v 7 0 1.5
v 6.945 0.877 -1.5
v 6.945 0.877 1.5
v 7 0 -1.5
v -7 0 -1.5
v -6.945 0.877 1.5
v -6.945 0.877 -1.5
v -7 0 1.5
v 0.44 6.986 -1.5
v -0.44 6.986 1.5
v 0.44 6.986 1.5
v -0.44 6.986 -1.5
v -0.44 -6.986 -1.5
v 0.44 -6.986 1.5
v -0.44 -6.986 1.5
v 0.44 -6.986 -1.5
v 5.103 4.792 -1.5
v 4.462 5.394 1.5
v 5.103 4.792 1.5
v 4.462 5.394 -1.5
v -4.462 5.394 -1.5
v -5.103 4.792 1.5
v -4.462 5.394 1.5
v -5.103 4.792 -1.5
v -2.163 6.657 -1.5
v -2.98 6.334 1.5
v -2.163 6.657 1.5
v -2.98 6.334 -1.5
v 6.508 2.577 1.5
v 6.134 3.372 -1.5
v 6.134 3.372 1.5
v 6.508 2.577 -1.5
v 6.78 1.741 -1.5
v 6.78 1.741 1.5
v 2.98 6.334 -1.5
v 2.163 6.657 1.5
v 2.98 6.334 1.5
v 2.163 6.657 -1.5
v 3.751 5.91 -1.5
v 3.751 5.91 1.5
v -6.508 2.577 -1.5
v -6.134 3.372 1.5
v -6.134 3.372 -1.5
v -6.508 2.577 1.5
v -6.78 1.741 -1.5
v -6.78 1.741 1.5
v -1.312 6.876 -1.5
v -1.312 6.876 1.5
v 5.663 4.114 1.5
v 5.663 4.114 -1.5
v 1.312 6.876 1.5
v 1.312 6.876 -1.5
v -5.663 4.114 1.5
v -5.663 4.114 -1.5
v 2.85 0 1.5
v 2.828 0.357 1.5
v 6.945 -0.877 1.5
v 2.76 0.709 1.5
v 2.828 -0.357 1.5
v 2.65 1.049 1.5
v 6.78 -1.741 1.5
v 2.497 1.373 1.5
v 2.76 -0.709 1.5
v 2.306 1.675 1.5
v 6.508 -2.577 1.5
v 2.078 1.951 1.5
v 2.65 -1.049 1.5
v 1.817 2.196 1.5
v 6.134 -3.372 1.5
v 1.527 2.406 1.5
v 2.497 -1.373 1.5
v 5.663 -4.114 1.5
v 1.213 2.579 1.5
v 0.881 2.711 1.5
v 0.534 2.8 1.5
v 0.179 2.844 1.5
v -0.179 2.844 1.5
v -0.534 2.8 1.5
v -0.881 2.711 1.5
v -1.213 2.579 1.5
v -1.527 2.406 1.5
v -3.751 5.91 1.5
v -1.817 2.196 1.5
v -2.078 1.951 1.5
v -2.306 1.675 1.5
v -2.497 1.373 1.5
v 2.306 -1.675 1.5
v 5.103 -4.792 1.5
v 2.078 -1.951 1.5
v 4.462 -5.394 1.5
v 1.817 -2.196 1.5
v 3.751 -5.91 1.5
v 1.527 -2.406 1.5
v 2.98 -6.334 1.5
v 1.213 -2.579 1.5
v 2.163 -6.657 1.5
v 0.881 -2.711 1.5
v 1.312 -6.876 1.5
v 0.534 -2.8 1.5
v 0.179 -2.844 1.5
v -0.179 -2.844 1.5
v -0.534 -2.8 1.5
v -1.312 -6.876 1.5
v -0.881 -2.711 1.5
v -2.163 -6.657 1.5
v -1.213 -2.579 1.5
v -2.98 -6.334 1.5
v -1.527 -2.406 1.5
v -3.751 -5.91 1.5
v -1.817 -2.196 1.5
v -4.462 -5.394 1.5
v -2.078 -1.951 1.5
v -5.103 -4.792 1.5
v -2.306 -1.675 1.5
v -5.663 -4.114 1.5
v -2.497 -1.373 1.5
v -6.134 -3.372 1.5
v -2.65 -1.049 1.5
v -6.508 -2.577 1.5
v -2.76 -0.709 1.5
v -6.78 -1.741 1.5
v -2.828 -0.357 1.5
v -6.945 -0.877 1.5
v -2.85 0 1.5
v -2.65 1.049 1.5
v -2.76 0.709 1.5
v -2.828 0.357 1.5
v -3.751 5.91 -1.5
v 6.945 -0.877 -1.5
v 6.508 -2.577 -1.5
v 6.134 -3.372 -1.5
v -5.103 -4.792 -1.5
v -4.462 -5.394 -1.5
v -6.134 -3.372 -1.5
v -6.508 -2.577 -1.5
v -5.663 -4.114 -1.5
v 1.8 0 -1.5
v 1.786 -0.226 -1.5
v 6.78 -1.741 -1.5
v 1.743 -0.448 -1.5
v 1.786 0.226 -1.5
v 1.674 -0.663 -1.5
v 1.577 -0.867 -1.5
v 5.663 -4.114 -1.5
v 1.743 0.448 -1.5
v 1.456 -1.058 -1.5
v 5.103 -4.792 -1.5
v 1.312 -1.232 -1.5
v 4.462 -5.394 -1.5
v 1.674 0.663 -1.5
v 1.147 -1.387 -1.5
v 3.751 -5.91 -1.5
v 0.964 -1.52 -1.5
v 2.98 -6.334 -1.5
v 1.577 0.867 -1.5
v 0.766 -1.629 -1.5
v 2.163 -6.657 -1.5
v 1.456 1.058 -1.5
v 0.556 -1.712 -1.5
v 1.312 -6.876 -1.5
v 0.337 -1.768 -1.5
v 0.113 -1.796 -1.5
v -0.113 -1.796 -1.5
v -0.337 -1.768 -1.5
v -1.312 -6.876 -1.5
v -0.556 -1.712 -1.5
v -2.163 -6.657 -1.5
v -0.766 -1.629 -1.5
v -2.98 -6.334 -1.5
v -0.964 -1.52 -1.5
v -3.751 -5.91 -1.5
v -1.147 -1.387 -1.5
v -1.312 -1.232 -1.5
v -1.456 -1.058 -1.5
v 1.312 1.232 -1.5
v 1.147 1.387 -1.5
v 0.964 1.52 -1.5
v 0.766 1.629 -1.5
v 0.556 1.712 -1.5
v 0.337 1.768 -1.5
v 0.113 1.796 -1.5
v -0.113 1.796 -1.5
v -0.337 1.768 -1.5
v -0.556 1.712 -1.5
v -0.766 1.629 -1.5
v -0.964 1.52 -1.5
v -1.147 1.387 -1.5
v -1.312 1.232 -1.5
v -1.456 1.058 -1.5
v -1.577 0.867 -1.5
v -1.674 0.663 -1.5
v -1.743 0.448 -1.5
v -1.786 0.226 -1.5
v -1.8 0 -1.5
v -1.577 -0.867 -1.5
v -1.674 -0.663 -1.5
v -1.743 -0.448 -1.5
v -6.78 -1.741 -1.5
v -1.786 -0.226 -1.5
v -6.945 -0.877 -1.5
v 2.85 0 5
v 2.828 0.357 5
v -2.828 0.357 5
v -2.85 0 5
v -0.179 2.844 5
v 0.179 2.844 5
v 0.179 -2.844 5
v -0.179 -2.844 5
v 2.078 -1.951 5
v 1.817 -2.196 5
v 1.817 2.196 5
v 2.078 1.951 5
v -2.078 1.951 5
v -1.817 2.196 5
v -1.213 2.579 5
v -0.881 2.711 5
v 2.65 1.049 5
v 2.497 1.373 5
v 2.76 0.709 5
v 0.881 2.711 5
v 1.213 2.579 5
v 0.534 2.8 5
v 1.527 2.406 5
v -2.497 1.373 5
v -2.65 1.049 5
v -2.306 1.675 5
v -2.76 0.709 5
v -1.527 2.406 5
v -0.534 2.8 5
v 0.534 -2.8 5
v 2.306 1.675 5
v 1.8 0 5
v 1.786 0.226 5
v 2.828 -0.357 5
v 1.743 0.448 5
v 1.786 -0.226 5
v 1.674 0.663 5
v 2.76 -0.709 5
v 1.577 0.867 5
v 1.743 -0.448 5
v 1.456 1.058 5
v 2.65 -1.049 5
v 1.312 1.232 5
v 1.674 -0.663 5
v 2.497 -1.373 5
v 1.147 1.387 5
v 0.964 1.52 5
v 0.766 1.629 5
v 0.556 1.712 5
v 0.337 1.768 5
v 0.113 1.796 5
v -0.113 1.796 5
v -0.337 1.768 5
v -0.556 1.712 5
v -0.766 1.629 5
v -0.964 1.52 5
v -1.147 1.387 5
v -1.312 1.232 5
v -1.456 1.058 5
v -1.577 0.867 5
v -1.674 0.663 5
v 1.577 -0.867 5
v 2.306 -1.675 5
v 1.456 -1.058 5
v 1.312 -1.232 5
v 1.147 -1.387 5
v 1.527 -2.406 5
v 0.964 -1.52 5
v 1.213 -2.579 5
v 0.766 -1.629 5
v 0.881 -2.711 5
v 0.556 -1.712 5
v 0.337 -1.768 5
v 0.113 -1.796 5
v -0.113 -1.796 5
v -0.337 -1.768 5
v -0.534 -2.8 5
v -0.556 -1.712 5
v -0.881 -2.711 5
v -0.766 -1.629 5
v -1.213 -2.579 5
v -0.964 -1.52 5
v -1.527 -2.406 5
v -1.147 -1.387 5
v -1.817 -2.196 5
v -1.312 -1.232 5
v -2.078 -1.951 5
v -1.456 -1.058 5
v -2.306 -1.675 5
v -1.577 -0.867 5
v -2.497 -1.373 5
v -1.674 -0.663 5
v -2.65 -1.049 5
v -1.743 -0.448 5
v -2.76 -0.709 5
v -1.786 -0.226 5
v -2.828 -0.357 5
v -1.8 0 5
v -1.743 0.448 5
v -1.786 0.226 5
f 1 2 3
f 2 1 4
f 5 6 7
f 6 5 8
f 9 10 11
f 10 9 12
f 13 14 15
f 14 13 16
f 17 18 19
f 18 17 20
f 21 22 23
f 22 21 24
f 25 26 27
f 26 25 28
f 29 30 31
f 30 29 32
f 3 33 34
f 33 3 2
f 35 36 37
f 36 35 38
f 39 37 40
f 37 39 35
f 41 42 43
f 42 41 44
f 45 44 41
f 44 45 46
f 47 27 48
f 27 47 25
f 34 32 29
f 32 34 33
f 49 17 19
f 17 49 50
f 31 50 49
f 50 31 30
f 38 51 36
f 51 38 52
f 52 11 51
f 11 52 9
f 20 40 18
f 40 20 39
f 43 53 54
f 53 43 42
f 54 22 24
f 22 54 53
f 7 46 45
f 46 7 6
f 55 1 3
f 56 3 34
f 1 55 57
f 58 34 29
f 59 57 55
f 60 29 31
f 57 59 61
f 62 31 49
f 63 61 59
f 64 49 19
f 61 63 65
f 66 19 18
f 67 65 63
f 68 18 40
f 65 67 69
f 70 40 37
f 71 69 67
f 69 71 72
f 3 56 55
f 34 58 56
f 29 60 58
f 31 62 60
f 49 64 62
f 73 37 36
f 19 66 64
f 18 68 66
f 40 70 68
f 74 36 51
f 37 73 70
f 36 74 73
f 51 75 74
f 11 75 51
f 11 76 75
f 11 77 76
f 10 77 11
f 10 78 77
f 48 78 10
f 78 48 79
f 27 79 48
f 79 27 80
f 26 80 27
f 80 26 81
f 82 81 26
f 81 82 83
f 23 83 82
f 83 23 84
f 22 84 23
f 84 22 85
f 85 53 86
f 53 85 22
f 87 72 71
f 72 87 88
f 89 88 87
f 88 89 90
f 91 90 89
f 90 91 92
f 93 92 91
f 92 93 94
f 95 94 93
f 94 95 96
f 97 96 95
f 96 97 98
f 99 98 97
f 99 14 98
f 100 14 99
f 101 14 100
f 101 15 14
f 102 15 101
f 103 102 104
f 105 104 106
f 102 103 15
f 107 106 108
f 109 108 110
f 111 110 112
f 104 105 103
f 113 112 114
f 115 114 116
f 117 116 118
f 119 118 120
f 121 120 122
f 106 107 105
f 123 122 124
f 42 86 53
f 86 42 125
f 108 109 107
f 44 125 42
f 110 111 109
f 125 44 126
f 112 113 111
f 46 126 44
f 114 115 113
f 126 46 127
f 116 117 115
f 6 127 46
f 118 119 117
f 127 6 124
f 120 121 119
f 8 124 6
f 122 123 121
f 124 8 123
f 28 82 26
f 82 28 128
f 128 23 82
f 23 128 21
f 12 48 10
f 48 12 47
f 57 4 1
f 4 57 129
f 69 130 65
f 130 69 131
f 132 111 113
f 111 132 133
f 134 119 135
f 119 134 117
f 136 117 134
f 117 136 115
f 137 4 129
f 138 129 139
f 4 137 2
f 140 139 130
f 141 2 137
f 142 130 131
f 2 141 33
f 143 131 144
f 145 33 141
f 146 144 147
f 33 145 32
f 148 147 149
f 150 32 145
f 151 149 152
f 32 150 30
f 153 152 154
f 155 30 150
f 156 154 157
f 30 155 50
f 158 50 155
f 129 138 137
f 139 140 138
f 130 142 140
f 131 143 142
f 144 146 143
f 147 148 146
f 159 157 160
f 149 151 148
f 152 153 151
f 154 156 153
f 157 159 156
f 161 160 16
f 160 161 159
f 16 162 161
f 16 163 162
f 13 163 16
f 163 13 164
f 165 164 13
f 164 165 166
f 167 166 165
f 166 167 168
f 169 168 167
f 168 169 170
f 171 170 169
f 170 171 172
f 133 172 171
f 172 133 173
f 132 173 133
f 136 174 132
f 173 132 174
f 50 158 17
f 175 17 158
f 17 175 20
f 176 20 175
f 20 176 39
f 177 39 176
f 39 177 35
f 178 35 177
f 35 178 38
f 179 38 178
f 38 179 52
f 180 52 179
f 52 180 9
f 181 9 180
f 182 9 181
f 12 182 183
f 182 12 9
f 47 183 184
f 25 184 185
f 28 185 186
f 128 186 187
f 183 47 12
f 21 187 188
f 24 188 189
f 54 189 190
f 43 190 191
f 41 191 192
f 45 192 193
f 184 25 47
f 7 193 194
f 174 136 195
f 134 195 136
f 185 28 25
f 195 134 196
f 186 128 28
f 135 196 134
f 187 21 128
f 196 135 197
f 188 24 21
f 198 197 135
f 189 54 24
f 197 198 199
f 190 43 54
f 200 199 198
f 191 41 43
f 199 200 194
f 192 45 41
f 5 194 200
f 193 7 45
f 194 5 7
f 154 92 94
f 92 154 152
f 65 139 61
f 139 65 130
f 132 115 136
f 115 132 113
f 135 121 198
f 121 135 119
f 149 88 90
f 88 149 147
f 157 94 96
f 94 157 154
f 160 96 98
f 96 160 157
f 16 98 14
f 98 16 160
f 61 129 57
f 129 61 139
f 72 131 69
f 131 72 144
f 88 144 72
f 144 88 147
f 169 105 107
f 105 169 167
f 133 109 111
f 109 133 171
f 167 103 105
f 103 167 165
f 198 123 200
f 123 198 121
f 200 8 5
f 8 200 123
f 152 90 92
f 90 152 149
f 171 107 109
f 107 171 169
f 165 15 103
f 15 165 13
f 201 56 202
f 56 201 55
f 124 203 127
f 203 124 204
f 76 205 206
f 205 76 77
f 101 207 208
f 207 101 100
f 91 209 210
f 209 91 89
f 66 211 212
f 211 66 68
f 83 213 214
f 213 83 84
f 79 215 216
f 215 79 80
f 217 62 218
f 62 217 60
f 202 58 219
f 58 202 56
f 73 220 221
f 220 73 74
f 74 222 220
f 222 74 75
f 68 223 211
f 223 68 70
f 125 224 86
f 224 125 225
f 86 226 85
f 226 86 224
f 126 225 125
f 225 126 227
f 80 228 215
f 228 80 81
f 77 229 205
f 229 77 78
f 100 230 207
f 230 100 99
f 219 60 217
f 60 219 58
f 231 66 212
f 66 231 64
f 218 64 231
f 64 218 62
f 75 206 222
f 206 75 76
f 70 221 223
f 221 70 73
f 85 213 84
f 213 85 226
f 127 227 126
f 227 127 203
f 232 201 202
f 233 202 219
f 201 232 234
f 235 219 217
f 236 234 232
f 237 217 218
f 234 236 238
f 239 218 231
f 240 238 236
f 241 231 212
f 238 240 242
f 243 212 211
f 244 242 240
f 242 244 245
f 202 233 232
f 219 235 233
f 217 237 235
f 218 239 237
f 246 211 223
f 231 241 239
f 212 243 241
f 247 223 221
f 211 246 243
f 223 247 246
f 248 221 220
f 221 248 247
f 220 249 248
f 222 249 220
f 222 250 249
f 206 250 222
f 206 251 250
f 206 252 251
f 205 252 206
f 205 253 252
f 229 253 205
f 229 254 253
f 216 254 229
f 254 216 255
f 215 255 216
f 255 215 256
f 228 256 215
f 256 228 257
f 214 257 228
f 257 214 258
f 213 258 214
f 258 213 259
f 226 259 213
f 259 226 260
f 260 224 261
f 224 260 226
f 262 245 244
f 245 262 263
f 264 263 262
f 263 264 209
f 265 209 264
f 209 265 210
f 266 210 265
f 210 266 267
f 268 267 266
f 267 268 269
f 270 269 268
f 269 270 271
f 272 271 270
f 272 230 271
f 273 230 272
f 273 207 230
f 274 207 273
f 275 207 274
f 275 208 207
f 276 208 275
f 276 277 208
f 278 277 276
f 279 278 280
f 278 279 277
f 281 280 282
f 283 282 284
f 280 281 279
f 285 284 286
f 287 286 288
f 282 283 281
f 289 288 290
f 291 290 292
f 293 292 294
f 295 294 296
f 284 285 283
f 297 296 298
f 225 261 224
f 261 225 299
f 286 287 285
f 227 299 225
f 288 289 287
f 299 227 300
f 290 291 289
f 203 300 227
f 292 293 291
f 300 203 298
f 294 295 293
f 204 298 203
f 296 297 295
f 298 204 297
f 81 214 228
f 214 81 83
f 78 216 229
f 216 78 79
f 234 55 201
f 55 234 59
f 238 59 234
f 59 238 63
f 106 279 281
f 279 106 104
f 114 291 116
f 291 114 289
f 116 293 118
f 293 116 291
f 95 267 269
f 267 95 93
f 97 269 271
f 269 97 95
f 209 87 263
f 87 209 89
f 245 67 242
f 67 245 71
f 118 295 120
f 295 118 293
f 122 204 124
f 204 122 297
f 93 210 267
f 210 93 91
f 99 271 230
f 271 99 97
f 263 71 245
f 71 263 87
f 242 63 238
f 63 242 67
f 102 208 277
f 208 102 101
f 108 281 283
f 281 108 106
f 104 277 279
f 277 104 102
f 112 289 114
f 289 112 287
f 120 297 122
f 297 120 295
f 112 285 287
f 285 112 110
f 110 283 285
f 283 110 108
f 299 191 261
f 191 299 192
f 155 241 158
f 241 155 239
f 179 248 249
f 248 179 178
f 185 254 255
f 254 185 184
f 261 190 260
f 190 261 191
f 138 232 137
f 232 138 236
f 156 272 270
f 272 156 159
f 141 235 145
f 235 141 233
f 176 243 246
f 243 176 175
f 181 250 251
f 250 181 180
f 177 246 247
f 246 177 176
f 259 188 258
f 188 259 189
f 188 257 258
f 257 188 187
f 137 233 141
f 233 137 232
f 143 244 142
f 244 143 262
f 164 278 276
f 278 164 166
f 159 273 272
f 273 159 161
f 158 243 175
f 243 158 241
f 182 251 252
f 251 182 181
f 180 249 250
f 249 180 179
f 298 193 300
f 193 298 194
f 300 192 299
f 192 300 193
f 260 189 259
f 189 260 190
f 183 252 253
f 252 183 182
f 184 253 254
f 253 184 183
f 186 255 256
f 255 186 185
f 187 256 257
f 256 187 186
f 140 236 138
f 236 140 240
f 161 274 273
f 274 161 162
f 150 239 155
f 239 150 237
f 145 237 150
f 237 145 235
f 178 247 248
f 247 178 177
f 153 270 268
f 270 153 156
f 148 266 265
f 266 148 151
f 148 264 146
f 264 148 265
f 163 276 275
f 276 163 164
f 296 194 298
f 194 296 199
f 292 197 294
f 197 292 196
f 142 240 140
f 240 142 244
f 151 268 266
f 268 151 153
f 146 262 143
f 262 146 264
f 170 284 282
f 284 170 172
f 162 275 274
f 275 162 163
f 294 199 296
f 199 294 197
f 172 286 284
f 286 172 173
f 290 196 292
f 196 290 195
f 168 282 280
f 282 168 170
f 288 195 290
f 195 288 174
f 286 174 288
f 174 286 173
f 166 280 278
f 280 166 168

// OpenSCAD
$fn = 50;


difference() {
	union() {
		translate(v = [0, 0, -1.5000000000]) {
			rotate(a = [0, 0, 0]) {
				cylinder(h = 3, r = 7.0000000000);
			}
		}
		translate(v = [0, 0, -1.5000000000]) {
			rotate(a = [0, 0, 0]) {
				cylinder(h = 6.5000000000, r = 2.8500000000);
			}
		}
	}
	union() {
		translate(v = [0, 0, -125.0000000000]) {
			rotate(a = [0, 0, 0]) {
				cylinder(h = 250, r = 1.8000000000);
			}
		}
	}
}
